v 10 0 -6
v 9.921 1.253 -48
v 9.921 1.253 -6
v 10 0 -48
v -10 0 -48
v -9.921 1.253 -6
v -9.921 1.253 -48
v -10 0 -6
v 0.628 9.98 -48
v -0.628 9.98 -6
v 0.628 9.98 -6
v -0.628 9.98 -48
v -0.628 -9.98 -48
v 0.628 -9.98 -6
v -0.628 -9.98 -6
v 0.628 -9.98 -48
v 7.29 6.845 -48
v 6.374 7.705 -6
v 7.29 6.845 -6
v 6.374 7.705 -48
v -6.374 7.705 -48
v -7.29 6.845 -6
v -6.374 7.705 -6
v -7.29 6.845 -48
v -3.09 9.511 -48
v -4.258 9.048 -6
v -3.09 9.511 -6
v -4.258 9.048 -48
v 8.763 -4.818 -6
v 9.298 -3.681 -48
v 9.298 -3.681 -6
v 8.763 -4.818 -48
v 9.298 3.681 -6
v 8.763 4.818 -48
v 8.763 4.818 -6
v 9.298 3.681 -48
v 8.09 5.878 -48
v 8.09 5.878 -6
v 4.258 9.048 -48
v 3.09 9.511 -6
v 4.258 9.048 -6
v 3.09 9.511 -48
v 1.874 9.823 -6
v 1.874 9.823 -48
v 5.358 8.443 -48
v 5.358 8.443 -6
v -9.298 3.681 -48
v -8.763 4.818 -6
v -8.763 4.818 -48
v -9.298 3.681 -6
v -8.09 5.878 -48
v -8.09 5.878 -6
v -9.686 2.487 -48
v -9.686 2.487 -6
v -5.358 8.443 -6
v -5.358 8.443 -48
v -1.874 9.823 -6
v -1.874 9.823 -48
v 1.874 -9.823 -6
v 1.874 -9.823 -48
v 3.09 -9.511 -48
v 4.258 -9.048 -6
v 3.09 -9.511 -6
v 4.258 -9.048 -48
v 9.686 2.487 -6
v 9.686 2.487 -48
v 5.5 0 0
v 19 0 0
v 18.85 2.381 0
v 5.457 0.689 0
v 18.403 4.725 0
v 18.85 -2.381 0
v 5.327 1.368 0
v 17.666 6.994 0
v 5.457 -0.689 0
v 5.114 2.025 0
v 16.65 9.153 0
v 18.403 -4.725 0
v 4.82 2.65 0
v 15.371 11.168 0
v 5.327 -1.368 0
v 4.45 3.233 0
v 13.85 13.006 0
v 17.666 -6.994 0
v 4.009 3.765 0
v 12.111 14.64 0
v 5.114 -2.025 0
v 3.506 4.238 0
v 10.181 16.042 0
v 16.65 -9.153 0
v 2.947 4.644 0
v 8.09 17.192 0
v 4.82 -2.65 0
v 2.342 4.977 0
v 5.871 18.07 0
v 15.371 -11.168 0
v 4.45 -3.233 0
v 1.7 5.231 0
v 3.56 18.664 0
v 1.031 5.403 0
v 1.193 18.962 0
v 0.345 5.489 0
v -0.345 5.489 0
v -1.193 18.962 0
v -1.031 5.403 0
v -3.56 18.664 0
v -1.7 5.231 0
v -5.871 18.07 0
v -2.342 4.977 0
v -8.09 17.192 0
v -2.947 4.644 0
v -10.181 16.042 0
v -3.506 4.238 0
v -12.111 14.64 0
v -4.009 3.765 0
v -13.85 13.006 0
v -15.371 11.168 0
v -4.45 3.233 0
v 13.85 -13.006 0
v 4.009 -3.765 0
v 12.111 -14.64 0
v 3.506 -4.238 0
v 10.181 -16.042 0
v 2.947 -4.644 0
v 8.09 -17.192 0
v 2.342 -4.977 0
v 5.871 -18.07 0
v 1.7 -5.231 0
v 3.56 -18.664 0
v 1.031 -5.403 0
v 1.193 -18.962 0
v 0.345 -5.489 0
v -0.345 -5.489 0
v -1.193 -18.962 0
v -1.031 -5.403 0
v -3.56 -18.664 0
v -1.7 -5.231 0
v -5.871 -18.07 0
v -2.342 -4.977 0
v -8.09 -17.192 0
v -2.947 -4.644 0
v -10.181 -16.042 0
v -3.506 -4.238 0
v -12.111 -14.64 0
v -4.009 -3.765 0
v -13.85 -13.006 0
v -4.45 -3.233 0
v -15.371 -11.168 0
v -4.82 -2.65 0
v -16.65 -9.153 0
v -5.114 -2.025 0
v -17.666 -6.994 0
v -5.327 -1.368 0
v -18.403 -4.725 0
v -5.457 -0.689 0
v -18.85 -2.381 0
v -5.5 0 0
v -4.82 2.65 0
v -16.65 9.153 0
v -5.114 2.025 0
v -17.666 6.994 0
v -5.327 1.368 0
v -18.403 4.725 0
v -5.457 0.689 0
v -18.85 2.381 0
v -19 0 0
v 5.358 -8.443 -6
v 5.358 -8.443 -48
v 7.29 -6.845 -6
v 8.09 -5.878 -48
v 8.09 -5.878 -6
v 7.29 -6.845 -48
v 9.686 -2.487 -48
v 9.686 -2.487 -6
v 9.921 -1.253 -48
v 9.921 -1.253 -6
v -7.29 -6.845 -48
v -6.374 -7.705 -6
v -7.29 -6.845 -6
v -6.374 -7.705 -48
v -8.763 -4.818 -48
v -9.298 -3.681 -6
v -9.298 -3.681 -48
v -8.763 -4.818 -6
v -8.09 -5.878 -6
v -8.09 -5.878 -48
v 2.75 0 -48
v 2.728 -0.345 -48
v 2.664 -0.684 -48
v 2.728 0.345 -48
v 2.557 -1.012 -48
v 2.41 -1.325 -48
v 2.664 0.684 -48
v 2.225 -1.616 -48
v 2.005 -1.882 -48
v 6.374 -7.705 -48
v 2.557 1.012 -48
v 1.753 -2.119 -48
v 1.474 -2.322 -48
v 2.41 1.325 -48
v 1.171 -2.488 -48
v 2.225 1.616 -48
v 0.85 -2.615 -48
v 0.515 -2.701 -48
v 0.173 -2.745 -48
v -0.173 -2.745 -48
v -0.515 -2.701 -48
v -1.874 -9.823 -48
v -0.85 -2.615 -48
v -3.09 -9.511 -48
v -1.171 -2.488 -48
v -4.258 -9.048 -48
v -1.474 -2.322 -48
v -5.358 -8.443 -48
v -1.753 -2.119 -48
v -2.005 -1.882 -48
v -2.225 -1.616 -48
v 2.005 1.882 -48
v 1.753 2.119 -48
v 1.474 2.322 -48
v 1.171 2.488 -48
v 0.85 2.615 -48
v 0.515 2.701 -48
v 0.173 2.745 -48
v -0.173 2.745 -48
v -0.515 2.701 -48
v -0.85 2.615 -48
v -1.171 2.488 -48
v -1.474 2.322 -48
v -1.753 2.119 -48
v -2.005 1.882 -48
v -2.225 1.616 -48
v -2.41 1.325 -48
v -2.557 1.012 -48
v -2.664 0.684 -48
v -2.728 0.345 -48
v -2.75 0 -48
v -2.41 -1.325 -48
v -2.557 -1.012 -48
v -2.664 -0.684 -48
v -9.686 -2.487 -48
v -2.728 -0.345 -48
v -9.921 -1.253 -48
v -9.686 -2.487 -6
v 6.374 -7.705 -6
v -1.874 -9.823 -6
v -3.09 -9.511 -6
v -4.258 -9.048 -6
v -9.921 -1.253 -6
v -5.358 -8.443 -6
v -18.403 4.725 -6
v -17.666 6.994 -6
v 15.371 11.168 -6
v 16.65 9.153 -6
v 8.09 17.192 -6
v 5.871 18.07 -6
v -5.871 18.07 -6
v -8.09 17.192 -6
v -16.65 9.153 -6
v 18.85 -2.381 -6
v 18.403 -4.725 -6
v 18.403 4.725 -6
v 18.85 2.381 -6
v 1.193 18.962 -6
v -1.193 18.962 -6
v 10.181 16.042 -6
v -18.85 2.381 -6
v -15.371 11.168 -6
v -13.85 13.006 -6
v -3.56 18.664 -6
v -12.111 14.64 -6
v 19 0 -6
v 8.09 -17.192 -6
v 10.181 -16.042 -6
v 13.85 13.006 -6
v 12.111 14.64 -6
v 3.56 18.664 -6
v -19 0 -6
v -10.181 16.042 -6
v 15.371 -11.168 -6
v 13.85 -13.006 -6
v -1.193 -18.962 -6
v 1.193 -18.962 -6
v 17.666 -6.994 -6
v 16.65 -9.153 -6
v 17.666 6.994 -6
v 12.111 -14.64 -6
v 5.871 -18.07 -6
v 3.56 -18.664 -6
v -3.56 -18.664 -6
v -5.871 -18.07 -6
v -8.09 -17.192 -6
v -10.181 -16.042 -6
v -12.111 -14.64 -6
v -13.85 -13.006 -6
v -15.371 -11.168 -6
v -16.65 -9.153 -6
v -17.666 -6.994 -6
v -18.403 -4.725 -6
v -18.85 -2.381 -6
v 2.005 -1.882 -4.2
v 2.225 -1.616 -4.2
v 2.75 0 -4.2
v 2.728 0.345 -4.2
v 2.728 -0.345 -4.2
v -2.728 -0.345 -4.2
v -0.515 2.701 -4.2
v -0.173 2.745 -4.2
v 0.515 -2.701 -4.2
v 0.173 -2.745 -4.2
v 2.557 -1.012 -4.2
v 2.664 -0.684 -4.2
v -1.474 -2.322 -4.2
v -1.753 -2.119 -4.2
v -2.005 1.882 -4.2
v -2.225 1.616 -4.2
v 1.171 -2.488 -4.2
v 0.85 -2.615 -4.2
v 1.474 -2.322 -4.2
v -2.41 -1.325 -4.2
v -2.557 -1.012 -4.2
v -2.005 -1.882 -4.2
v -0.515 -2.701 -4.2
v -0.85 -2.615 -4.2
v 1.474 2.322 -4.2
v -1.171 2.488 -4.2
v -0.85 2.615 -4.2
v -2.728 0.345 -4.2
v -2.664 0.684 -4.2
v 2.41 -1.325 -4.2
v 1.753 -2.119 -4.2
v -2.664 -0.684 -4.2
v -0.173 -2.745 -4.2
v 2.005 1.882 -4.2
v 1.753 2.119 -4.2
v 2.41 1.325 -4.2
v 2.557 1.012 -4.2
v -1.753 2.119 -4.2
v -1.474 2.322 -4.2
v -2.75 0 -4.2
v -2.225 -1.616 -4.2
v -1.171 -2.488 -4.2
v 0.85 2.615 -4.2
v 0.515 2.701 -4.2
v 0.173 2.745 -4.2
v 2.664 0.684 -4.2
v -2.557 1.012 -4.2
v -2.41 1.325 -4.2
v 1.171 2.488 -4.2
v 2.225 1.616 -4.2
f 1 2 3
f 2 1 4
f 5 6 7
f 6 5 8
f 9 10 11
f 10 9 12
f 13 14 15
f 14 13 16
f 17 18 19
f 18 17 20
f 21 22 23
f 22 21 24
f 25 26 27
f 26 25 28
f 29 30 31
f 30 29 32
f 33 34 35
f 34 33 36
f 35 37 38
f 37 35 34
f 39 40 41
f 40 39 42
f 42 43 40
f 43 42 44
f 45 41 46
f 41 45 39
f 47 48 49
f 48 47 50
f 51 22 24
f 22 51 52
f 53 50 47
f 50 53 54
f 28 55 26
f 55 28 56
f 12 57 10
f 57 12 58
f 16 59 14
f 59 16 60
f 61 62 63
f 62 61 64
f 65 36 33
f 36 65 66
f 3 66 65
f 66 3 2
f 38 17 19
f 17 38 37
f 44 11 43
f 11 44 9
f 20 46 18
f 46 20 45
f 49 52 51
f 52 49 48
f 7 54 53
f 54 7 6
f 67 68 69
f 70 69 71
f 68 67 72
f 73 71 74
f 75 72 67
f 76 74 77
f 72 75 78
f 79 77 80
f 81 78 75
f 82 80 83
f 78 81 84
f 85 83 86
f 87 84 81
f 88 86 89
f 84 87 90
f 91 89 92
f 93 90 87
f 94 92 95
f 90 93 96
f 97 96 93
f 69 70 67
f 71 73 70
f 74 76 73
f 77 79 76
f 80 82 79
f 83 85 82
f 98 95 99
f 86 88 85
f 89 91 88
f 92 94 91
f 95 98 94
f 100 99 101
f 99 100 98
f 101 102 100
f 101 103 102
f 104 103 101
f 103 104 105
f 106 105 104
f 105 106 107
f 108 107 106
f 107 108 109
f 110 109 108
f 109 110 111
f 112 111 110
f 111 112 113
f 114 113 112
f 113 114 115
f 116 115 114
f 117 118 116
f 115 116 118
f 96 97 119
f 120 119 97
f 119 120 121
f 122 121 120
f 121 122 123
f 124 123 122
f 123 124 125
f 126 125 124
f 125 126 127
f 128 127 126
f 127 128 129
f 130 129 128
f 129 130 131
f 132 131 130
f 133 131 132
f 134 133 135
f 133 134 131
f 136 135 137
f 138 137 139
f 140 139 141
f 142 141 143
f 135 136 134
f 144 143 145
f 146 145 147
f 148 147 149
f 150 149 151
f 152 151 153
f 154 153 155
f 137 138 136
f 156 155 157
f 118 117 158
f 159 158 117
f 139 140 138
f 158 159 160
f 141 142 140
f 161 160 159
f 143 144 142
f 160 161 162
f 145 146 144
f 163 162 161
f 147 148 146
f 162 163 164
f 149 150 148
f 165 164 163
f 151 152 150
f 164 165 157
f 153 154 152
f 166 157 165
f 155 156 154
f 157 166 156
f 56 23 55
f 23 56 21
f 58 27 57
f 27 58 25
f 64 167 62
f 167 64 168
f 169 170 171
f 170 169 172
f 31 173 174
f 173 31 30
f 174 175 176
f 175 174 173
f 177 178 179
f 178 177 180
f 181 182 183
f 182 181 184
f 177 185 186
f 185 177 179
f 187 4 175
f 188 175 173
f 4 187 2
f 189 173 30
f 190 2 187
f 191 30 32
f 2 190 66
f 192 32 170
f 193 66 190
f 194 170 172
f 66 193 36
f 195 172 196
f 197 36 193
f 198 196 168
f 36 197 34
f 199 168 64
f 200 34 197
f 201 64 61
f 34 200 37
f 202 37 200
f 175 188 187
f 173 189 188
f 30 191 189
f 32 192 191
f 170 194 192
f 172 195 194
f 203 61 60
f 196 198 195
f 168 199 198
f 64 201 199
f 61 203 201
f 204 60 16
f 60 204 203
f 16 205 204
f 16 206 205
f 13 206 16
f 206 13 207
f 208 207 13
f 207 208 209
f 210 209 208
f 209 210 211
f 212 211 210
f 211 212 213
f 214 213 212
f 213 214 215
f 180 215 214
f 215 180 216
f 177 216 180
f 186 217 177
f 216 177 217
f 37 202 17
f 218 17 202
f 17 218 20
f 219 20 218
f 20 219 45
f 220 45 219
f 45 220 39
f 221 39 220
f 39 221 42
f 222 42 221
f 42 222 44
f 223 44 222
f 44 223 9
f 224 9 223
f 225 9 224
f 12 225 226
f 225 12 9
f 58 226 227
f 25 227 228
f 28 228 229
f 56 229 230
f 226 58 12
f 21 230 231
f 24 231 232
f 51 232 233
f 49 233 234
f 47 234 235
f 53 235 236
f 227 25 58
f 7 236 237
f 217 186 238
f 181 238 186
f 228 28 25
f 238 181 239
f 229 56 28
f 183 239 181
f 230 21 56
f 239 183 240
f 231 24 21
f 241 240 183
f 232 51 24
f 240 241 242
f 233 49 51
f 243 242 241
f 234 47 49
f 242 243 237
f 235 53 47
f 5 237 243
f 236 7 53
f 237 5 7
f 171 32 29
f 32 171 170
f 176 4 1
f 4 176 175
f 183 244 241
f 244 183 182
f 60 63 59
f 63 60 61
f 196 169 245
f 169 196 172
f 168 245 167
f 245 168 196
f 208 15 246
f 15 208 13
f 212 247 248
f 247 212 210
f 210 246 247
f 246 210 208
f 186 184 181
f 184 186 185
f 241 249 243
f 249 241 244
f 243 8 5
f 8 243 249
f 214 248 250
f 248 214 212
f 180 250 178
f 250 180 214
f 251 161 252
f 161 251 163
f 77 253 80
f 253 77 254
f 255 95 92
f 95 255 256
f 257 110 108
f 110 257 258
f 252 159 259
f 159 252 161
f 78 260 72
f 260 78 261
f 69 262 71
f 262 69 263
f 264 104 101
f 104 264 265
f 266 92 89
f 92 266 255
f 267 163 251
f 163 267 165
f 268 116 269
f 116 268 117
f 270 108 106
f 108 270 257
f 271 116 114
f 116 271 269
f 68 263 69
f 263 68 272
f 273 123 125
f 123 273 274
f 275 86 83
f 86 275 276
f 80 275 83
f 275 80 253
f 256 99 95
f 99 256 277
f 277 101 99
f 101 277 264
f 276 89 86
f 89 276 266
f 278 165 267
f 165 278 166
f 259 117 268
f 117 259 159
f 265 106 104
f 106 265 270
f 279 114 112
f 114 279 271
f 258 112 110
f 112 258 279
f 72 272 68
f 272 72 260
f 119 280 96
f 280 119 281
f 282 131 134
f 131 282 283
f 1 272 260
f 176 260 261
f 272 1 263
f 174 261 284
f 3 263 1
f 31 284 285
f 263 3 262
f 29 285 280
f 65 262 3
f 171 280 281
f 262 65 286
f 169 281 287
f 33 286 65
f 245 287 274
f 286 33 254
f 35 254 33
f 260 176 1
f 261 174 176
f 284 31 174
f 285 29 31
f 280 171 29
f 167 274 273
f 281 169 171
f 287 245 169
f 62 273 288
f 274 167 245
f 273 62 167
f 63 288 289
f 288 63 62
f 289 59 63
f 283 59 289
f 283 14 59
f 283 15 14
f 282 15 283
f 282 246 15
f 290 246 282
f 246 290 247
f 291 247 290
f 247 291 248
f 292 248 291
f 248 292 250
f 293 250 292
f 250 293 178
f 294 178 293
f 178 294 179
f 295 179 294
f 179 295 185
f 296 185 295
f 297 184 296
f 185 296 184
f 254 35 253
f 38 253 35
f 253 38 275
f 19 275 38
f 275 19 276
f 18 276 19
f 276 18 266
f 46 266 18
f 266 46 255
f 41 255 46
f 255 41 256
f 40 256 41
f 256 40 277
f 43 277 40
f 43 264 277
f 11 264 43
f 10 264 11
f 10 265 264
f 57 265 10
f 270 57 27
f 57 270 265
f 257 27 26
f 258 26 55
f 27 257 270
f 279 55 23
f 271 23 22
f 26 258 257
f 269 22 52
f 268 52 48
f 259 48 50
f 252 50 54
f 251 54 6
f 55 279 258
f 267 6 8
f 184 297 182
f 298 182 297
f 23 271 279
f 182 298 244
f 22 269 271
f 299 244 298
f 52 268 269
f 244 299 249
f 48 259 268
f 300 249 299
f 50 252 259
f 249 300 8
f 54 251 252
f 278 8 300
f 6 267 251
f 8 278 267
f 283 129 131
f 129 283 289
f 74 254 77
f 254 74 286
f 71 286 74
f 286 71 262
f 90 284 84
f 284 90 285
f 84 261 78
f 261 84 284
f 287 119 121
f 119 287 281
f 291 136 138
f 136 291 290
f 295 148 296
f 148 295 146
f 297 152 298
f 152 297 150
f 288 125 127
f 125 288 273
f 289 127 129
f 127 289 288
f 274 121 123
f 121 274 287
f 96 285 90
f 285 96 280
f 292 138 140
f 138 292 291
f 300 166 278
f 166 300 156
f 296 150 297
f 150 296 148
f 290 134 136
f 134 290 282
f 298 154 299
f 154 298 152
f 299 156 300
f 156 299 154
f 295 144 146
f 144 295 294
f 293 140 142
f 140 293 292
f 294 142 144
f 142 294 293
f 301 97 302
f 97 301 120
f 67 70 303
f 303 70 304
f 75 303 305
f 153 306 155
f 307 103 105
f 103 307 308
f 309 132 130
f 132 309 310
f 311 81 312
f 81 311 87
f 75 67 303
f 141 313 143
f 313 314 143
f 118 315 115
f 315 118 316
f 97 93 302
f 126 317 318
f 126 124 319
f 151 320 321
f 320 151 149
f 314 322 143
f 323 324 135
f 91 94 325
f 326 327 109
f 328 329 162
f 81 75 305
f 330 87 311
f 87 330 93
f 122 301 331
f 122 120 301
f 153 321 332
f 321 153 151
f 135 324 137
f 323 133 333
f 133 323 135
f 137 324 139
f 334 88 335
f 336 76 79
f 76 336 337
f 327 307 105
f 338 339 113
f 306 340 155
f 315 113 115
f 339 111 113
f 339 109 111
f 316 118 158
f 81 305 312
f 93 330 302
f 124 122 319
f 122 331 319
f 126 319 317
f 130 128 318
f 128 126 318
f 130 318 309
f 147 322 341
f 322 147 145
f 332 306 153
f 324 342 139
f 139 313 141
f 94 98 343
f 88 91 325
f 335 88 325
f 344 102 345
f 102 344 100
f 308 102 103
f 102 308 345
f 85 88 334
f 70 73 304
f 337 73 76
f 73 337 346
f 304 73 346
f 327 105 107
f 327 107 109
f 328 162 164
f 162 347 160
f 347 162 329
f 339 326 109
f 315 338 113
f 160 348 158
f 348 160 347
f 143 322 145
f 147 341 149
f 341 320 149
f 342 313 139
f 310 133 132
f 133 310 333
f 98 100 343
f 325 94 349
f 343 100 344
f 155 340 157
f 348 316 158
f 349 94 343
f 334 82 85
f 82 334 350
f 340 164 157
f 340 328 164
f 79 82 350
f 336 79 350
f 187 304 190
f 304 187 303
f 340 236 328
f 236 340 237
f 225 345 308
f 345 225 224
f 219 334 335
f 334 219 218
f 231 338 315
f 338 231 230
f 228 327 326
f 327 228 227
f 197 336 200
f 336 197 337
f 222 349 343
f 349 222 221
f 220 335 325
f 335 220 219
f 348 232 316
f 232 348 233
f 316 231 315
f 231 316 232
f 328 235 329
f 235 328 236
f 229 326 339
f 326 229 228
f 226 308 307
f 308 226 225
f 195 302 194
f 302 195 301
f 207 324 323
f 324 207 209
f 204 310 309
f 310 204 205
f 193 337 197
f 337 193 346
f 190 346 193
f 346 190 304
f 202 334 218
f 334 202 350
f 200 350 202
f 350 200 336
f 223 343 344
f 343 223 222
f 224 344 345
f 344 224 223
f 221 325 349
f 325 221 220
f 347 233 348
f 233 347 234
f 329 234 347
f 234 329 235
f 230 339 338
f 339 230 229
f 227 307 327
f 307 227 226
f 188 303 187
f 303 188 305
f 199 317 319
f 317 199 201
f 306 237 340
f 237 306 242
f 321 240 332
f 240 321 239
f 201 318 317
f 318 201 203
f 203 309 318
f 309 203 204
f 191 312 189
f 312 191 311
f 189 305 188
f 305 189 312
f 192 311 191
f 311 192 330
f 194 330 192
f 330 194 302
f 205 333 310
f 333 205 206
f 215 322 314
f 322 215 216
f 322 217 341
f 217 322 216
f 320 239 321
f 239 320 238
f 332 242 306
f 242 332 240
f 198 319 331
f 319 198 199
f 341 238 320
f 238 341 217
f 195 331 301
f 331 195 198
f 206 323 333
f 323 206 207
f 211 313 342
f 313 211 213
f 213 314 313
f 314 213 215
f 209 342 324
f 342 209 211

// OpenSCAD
$fn = 50;


difference() {
	union() {
		translate(v = [0, 0, -48.0000000000]) {
			cylinder(h = 48, r = 10.0000000000);
		}
		translate(v = [0, 0, -6.0000000000]) {
			cylinder(h = 6, r = 19.0000000000);
		}
	}
	union() {
		translate(v = [0, 0, 0]) {
			rotate(a = [0, 0, 0]) {
				difference() {
					union() {
						#translate(v = [0, 0, -48.0000000000]) {
							cylinder(h = 48, r = 2.2500000000);
						}
						#translate(v = [0, 0, -4.2000000000]) {
							cylinder(h = 4.2000000000, r = 10.0000000000, r1 = 2.7500000000, r2 = 5.5000000000);
						}
						#translate(v = [0, 0, -48.0000000000]) {
							cylinder(h = 48, r = 2.7500000000);
						}
						#translate(v = [0, 0, -48.0000000000]) {
							cylinder(h = 48, r = 2.2500000000);
						}
					}
					union();
				}
			}
		}
	}
}
